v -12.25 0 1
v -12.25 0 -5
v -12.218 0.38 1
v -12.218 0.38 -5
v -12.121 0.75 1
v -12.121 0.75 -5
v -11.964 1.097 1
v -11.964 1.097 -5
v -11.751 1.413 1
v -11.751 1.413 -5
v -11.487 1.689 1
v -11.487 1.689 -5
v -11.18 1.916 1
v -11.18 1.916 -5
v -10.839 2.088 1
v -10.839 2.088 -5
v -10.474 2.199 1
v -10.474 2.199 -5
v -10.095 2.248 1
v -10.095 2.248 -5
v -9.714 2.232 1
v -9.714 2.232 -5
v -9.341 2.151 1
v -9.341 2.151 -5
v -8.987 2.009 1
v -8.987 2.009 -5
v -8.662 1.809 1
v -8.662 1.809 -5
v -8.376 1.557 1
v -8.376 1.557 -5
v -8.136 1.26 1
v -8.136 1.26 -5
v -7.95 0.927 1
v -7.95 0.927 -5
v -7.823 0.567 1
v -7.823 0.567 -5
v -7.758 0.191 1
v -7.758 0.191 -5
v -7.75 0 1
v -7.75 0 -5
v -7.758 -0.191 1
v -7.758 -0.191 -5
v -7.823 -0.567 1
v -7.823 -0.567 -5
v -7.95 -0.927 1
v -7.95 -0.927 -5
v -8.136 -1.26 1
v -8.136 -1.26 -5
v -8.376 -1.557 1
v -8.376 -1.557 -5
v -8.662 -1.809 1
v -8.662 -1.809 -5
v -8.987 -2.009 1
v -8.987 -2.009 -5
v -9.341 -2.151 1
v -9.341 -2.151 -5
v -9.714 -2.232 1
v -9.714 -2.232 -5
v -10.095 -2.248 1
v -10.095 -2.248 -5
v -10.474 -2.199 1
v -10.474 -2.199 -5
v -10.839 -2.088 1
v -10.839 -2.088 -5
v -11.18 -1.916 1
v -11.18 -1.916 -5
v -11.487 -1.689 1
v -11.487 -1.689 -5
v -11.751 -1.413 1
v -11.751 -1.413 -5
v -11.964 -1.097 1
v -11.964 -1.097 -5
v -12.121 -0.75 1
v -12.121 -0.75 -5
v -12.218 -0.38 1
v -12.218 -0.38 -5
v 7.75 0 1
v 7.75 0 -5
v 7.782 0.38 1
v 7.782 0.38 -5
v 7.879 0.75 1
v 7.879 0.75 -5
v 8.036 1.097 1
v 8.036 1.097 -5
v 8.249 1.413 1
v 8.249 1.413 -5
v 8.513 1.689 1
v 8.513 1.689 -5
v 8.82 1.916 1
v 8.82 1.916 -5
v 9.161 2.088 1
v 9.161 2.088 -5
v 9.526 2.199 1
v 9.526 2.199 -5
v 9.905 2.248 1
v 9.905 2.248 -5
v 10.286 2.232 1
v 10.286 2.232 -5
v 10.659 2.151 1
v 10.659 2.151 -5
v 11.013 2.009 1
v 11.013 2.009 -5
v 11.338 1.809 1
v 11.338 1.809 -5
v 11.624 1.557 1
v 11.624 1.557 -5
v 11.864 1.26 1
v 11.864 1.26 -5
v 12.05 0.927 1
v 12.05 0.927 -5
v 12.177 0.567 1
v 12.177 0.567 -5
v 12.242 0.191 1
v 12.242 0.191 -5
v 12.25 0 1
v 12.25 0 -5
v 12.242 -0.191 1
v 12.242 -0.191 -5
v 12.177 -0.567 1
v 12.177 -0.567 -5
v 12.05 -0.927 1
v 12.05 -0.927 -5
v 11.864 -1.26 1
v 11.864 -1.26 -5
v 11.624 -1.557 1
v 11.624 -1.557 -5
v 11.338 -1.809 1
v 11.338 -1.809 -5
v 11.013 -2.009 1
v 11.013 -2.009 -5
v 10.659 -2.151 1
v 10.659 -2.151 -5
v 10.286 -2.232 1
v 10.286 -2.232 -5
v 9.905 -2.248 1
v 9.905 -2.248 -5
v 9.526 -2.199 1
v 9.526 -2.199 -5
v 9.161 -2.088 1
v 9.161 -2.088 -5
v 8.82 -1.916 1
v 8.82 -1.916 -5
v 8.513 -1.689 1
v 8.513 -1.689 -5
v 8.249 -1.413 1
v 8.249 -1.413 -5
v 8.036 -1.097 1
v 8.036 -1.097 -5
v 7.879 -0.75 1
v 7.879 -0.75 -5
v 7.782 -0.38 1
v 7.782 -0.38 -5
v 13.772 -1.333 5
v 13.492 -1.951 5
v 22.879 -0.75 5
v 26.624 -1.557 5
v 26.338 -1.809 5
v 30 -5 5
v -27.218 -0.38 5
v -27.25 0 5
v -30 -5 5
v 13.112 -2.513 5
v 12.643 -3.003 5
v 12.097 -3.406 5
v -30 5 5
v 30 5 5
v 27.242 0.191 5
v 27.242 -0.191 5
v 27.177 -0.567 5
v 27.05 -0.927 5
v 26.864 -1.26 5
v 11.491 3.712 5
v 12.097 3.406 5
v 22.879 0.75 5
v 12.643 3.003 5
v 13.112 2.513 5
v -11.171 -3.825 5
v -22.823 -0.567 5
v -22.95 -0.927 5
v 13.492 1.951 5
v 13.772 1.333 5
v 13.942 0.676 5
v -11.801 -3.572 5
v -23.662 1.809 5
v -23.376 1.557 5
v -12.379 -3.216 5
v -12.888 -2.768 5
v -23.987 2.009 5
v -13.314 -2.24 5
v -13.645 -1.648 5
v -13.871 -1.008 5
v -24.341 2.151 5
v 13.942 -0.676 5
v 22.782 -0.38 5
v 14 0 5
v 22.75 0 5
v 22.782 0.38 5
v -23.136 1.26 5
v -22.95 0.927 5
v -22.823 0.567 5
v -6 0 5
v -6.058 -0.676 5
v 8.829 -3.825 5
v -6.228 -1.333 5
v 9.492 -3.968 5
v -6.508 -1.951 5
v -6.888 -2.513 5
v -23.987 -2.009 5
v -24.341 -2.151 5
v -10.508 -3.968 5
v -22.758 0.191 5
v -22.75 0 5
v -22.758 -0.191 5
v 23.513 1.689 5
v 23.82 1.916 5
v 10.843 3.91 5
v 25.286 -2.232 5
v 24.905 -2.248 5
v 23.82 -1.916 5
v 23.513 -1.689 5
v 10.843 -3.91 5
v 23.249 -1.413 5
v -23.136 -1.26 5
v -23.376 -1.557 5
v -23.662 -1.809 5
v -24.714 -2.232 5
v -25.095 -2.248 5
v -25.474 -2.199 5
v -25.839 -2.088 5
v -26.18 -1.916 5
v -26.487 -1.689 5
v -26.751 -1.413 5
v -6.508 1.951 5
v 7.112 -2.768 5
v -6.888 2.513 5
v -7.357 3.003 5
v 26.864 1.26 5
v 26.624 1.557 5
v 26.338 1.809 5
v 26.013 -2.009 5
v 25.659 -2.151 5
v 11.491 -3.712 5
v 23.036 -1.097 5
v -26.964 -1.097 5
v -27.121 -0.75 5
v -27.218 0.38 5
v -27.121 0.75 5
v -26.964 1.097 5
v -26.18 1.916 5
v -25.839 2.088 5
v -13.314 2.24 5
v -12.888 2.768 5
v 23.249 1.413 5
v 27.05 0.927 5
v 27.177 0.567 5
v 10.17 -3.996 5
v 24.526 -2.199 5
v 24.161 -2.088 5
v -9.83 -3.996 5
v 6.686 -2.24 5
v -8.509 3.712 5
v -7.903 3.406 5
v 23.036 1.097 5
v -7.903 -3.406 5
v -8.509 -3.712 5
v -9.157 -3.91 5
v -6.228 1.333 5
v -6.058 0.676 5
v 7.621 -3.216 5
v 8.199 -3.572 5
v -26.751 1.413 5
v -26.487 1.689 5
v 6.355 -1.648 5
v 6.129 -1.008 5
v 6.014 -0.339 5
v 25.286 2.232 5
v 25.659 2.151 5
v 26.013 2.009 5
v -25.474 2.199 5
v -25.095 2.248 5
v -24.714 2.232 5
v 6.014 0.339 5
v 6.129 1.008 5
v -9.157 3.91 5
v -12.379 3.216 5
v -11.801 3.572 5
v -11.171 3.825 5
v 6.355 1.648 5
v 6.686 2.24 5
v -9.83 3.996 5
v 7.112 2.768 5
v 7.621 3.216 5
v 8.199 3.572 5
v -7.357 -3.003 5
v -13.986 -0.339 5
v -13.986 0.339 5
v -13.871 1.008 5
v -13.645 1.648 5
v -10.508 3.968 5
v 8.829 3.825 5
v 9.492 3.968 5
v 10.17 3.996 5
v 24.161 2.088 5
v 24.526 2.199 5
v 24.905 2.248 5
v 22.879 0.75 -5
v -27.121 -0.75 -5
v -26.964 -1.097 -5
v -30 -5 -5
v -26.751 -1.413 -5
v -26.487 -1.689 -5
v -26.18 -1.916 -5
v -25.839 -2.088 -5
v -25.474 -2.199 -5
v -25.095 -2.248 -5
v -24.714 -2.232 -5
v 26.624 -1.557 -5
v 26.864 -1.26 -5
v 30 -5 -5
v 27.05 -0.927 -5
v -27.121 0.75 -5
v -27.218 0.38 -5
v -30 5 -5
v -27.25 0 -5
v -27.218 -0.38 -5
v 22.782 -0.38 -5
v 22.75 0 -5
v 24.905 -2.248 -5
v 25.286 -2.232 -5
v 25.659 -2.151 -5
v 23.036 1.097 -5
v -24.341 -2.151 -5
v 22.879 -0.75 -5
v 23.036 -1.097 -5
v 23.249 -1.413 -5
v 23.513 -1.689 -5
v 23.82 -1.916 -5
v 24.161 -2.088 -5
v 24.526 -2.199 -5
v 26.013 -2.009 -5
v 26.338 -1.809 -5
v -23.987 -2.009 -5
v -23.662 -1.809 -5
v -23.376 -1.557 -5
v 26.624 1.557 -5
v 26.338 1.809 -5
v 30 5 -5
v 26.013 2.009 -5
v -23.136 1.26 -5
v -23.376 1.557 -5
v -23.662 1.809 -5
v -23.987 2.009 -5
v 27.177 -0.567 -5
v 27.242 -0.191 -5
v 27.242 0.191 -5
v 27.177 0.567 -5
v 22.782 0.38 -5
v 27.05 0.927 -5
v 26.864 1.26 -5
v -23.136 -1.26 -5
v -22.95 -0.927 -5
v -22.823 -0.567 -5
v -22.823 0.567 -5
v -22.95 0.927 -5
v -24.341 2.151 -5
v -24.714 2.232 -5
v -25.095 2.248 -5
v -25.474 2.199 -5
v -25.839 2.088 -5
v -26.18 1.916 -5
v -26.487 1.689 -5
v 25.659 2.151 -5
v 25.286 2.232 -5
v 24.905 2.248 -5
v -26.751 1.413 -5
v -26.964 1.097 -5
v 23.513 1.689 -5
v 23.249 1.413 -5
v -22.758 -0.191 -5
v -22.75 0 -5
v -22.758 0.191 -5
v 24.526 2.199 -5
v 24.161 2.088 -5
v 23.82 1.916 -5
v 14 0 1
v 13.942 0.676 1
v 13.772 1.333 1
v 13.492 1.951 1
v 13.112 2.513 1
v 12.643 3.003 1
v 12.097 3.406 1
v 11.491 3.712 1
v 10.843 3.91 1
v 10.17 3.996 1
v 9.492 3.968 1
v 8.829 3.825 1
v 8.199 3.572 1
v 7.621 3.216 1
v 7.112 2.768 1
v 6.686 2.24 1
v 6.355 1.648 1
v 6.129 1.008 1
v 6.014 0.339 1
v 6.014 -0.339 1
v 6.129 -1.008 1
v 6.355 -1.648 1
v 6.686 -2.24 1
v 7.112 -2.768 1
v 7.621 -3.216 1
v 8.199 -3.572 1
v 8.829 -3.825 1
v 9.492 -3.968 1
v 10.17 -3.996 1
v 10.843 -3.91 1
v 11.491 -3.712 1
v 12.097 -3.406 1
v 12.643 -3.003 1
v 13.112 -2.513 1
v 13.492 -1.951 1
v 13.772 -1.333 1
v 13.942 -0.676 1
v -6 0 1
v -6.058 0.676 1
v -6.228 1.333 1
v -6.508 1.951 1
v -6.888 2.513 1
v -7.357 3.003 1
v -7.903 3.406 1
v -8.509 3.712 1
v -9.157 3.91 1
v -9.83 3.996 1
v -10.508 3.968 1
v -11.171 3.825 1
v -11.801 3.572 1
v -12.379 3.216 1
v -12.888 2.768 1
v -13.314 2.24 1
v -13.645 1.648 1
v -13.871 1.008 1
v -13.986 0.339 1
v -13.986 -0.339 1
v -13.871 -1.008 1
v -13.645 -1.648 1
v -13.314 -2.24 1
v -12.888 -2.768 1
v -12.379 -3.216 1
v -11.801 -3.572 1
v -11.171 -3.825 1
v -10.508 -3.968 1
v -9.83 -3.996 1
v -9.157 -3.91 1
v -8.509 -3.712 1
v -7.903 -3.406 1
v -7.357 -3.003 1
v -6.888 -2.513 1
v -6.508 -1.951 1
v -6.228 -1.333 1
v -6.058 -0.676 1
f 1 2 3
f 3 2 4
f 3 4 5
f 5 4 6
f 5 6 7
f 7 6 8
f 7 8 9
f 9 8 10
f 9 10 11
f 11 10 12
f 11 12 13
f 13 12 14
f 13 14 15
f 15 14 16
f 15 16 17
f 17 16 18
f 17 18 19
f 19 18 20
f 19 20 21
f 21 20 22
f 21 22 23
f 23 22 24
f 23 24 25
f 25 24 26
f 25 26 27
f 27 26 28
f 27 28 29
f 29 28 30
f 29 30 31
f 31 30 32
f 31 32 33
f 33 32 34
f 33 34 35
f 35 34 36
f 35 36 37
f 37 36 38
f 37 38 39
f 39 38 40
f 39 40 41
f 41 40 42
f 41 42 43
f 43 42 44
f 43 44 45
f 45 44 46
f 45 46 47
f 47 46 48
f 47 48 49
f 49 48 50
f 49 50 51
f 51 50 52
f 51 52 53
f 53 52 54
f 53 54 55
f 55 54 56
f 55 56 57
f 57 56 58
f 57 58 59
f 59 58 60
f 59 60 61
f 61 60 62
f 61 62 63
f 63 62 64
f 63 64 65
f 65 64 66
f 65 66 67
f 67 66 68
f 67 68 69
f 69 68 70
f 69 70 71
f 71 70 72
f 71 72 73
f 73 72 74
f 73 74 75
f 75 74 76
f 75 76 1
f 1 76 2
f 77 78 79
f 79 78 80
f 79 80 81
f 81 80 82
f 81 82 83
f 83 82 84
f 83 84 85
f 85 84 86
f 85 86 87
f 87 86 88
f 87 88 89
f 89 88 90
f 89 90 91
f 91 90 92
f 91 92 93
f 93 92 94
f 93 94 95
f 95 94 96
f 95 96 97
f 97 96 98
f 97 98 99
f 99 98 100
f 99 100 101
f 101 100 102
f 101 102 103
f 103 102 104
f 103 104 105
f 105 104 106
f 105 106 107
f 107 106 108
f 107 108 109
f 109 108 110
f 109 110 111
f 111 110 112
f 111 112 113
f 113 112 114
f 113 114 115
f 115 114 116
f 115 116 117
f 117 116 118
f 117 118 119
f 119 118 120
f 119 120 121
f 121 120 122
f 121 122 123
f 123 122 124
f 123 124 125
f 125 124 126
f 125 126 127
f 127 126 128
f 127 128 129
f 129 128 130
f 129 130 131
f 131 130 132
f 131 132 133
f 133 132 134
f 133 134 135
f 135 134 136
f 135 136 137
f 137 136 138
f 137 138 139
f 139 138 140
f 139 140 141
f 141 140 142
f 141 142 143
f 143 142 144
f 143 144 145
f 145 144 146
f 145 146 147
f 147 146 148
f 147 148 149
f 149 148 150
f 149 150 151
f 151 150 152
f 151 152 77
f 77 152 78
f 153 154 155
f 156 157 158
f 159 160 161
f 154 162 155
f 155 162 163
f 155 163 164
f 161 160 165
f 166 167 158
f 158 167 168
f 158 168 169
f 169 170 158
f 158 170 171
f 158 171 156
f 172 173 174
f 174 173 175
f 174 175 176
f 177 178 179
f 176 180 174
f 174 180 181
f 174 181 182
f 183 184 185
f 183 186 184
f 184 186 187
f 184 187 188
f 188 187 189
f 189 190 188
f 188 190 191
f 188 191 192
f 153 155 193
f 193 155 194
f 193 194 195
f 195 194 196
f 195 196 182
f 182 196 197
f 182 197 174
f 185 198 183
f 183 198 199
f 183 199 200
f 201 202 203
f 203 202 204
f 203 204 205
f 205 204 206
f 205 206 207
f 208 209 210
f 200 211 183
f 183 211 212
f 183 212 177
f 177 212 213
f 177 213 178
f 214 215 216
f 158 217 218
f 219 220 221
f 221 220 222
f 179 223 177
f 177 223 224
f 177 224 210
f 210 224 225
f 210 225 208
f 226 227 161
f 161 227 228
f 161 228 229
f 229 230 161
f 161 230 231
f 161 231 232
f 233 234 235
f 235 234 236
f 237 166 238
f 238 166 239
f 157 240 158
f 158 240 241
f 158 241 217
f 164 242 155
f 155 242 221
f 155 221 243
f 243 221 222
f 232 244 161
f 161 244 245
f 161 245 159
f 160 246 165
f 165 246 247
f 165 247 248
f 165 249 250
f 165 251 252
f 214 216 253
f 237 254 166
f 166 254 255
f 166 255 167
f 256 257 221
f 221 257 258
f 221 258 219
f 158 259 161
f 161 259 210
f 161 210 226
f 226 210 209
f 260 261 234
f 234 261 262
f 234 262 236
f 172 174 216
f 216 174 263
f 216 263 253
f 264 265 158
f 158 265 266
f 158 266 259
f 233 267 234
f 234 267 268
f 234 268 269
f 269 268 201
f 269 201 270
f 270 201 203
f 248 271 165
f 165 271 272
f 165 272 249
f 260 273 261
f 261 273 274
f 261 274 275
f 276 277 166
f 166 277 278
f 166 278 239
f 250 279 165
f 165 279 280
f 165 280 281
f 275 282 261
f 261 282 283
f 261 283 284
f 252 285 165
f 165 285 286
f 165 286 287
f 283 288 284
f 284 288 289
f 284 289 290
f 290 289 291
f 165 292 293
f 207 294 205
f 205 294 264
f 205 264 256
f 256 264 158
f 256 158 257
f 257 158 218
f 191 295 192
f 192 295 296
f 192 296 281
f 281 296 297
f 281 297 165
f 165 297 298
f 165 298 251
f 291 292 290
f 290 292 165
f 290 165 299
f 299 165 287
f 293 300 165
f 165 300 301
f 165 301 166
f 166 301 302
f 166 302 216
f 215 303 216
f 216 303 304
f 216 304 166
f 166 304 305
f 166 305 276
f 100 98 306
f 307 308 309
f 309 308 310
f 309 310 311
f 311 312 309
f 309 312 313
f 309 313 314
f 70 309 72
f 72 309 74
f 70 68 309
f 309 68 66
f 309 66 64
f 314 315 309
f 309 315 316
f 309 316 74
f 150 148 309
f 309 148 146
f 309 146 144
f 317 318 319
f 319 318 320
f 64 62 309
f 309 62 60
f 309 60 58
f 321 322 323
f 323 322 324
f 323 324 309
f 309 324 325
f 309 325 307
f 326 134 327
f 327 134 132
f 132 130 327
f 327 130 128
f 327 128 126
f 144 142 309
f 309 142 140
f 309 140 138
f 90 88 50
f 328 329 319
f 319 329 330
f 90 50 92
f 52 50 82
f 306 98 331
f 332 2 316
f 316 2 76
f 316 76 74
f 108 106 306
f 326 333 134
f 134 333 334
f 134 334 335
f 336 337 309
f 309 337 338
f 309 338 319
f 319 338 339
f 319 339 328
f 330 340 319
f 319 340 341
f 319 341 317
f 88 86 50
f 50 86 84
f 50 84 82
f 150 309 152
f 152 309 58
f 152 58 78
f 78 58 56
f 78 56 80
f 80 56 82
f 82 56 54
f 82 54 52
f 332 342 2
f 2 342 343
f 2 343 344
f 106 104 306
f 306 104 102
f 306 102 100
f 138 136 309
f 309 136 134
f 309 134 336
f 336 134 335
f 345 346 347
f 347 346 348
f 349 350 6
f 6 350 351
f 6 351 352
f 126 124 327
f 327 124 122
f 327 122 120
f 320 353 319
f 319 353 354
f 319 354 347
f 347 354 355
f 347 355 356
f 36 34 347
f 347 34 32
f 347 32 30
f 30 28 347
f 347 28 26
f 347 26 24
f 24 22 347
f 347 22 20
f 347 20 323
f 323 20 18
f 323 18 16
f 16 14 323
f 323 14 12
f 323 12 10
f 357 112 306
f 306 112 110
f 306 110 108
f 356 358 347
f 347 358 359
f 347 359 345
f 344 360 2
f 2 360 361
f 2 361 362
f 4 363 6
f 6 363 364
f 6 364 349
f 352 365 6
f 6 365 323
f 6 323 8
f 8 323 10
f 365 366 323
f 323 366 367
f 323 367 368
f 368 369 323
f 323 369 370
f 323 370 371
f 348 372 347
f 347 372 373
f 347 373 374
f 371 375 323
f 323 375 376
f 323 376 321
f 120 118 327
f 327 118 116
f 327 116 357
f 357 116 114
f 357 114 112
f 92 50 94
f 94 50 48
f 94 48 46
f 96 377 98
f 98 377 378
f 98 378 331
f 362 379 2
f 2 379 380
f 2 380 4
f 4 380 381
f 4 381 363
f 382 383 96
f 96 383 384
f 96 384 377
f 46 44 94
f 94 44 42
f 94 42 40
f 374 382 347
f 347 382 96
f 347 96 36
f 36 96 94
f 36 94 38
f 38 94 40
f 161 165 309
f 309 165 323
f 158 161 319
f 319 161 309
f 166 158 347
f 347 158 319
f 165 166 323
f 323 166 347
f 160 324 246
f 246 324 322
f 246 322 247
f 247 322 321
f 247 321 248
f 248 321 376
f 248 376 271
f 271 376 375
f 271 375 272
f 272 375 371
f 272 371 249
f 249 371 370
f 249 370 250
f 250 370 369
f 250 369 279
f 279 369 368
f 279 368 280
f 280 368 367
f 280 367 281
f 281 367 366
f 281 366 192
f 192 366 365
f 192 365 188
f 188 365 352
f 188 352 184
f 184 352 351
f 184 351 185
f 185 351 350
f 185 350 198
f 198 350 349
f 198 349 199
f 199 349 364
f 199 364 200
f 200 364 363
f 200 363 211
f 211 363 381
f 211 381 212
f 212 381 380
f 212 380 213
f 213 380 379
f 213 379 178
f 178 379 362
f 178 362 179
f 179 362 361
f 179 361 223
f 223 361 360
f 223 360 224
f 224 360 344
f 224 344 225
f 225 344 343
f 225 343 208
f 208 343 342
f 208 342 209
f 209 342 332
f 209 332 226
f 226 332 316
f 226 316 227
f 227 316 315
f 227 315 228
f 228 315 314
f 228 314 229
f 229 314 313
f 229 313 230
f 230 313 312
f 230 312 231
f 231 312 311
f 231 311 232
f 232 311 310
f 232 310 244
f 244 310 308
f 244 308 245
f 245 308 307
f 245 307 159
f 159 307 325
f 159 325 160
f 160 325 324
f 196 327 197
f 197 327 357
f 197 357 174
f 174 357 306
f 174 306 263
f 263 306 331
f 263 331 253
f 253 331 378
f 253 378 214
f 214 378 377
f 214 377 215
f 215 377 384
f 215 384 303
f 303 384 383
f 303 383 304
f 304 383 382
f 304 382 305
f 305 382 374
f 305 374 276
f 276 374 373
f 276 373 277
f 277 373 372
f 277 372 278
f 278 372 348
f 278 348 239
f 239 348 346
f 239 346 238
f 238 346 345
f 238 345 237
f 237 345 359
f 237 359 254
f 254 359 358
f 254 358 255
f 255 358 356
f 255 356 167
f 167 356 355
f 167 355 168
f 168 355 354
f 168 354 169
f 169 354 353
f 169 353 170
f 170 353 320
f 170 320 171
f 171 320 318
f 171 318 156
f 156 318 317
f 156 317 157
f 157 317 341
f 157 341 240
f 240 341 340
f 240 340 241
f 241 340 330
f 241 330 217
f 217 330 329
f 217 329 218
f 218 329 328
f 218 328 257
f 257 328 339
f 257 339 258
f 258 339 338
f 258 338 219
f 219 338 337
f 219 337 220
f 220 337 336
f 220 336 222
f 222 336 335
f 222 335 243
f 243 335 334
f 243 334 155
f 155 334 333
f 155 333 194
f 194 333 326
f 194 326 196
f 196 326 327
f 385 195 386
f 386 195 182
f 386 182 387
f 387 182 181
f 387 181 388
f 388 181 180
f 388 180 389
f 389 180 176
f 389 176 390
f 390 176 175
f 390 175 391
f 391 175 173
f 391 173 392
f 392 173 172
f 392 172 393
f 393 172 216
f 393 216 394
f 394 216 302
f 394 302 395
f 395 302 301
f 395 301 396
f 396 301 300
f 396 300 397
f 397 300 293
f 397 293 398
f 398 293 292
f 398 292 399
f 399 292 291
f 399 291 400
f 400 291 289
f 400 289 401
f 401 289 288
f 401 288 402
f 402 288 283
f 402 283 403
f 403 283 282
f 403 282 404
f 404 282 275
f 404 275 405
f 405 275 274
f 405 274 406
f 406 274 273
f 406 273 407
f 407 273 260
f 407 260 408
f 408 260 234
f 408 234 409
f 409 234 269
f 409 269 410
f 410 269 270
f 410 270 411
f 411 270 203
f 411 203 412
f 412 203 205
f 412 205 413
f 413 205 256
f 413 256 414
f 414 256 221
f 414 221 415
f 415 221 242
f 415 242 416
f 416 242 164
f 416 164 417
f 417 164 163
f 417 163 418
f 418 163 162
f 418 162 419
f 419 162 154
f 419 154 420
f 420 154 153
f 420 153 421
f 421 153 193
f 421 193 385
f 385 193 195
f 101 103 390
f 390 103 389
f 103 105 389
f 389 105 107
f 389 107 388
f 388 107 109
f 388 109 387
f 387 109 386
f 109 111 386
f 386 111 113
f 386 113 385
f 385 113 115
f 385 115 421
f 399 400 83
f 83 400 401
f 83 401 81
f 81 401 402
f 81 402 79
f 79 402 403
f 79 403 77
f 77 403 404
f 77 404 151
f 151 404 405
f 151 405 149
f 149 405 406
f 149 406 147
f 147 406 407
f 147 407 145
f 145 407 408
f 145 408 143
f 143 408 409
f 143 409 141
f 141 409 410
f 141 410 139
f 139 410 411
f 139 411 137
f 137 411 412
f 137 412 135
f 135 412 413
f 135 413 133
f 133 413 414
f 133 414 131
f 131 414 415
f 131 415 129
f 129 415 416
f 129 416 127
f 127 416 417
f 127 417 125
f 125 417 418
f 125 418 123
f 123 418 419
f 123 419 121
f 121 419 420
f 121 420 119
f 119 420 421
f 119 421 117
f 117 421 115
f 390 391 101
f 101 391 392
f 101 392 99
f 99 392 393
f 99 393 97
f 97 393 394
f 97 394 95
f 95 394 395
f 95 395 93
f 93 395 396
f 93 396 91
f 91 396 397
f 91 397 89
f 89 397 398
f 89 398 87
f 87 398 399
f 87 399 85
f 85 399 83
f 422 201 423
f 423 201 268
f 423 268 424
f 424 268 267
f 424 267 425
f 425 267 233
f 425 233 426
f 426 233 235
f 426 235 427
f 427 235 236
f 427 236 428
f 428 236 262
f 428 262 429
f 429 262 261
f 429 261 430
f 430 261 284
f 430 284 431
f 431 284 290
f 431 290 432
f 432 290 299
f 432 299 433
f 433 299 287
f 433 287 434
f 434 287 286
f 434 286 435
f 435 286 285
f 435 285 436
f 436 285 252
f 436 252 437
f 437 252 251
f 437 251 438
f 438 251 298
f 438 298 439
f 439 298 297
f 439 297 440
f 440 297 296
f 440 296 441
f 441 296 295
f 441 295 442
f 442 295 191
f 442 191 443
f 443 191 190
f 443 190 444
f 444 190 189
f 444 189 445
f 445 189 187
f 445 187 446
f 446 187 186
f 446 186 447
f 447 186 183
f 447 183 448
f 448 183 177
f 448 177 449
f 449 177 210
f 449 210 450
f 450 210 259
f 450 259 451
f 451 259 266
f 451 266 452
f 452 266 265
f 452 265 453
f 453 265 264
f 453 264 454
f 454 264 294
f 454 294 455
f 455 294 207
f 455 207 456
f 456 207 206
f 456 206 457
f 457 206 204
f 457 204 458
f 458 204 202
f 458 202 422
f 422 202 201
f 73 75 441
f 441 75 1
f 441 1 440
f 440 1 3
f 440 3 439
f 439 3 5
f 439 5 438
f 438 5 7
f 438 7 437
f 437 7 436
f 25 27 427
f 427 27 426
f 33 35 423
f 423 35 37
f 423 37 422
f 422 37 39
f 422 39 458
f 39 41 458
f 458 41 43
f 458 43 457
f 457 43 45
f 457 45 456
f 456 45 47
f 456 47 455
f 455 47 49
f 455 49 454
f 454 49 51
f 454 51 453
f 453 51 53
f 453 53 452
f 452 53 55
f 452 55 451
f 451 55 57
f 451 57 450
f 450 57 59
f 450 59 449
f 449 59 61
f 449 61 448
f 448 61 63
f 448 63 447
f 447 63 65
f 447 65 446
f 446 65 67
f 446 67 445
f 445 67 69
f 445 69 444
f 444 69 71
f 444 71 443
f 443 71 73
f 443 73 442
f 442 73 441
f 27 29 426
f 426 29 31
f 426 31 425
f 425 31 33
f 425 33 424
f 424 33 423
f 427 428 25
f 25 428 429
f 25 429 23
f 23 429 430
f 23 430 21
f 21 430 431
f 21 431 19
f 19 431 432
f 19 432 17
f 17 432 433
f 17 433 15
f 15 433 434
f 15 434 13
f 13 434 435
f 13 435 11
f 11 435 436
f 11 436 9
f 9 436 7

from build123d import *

# Parameters (mm, degrees)
CROQUIS1_W              = 60
CROQUIS1_H              = 10
CROQUIS1_R              = 2.25
SALIENTE_EXTRUIR1_DEPTH = 5
CROQUIS4_R              = 4
CORTAR_EXTRUIR1_DEPTH   = 4


with BuildPart() as part:
    # Croquis1 → Saliente-Extruir1 (new, symmetric)
    with BuildSketch(Plane.XY):
        Rectangle(CROQUIS1_W, CROQUIS1_H)
        with Locations((-10, 0)):
            Circle(CROQUIS1_R, mode=Mode.SUBTRACT)
        with Locations((10, 0)):
            Circle(CROQUIS1_R, mode=Mode.SUBTRACT)
        with Locations((-25, 0)):
            Circle(CROQUIS1_R, mode=Mode.SUBTRACT)
        with Locations(Location((25, 0, 0), (0, 0, 180))):
            Circle(CROQUIS1_R, mode=Mode.SUBTRACT)
    extrude(amount=SALIENTE_EXTRUIR1_DEPTH, both=True)

    # Croquis4 → Cortar-Extruir1 (cut)
    with BuildSketch(Plane.XY.offset(5)):
        with Locations((-10, 0)):
            Circle(CROQUIS4_R)
        with Locations((10, 0)):
            Circle(CROQUIS4_R)
    extrude(amount=-CORTAR_EXTRUIR1_DEPTH, mode=Mode.SUBTRACT)


solid = part.part
